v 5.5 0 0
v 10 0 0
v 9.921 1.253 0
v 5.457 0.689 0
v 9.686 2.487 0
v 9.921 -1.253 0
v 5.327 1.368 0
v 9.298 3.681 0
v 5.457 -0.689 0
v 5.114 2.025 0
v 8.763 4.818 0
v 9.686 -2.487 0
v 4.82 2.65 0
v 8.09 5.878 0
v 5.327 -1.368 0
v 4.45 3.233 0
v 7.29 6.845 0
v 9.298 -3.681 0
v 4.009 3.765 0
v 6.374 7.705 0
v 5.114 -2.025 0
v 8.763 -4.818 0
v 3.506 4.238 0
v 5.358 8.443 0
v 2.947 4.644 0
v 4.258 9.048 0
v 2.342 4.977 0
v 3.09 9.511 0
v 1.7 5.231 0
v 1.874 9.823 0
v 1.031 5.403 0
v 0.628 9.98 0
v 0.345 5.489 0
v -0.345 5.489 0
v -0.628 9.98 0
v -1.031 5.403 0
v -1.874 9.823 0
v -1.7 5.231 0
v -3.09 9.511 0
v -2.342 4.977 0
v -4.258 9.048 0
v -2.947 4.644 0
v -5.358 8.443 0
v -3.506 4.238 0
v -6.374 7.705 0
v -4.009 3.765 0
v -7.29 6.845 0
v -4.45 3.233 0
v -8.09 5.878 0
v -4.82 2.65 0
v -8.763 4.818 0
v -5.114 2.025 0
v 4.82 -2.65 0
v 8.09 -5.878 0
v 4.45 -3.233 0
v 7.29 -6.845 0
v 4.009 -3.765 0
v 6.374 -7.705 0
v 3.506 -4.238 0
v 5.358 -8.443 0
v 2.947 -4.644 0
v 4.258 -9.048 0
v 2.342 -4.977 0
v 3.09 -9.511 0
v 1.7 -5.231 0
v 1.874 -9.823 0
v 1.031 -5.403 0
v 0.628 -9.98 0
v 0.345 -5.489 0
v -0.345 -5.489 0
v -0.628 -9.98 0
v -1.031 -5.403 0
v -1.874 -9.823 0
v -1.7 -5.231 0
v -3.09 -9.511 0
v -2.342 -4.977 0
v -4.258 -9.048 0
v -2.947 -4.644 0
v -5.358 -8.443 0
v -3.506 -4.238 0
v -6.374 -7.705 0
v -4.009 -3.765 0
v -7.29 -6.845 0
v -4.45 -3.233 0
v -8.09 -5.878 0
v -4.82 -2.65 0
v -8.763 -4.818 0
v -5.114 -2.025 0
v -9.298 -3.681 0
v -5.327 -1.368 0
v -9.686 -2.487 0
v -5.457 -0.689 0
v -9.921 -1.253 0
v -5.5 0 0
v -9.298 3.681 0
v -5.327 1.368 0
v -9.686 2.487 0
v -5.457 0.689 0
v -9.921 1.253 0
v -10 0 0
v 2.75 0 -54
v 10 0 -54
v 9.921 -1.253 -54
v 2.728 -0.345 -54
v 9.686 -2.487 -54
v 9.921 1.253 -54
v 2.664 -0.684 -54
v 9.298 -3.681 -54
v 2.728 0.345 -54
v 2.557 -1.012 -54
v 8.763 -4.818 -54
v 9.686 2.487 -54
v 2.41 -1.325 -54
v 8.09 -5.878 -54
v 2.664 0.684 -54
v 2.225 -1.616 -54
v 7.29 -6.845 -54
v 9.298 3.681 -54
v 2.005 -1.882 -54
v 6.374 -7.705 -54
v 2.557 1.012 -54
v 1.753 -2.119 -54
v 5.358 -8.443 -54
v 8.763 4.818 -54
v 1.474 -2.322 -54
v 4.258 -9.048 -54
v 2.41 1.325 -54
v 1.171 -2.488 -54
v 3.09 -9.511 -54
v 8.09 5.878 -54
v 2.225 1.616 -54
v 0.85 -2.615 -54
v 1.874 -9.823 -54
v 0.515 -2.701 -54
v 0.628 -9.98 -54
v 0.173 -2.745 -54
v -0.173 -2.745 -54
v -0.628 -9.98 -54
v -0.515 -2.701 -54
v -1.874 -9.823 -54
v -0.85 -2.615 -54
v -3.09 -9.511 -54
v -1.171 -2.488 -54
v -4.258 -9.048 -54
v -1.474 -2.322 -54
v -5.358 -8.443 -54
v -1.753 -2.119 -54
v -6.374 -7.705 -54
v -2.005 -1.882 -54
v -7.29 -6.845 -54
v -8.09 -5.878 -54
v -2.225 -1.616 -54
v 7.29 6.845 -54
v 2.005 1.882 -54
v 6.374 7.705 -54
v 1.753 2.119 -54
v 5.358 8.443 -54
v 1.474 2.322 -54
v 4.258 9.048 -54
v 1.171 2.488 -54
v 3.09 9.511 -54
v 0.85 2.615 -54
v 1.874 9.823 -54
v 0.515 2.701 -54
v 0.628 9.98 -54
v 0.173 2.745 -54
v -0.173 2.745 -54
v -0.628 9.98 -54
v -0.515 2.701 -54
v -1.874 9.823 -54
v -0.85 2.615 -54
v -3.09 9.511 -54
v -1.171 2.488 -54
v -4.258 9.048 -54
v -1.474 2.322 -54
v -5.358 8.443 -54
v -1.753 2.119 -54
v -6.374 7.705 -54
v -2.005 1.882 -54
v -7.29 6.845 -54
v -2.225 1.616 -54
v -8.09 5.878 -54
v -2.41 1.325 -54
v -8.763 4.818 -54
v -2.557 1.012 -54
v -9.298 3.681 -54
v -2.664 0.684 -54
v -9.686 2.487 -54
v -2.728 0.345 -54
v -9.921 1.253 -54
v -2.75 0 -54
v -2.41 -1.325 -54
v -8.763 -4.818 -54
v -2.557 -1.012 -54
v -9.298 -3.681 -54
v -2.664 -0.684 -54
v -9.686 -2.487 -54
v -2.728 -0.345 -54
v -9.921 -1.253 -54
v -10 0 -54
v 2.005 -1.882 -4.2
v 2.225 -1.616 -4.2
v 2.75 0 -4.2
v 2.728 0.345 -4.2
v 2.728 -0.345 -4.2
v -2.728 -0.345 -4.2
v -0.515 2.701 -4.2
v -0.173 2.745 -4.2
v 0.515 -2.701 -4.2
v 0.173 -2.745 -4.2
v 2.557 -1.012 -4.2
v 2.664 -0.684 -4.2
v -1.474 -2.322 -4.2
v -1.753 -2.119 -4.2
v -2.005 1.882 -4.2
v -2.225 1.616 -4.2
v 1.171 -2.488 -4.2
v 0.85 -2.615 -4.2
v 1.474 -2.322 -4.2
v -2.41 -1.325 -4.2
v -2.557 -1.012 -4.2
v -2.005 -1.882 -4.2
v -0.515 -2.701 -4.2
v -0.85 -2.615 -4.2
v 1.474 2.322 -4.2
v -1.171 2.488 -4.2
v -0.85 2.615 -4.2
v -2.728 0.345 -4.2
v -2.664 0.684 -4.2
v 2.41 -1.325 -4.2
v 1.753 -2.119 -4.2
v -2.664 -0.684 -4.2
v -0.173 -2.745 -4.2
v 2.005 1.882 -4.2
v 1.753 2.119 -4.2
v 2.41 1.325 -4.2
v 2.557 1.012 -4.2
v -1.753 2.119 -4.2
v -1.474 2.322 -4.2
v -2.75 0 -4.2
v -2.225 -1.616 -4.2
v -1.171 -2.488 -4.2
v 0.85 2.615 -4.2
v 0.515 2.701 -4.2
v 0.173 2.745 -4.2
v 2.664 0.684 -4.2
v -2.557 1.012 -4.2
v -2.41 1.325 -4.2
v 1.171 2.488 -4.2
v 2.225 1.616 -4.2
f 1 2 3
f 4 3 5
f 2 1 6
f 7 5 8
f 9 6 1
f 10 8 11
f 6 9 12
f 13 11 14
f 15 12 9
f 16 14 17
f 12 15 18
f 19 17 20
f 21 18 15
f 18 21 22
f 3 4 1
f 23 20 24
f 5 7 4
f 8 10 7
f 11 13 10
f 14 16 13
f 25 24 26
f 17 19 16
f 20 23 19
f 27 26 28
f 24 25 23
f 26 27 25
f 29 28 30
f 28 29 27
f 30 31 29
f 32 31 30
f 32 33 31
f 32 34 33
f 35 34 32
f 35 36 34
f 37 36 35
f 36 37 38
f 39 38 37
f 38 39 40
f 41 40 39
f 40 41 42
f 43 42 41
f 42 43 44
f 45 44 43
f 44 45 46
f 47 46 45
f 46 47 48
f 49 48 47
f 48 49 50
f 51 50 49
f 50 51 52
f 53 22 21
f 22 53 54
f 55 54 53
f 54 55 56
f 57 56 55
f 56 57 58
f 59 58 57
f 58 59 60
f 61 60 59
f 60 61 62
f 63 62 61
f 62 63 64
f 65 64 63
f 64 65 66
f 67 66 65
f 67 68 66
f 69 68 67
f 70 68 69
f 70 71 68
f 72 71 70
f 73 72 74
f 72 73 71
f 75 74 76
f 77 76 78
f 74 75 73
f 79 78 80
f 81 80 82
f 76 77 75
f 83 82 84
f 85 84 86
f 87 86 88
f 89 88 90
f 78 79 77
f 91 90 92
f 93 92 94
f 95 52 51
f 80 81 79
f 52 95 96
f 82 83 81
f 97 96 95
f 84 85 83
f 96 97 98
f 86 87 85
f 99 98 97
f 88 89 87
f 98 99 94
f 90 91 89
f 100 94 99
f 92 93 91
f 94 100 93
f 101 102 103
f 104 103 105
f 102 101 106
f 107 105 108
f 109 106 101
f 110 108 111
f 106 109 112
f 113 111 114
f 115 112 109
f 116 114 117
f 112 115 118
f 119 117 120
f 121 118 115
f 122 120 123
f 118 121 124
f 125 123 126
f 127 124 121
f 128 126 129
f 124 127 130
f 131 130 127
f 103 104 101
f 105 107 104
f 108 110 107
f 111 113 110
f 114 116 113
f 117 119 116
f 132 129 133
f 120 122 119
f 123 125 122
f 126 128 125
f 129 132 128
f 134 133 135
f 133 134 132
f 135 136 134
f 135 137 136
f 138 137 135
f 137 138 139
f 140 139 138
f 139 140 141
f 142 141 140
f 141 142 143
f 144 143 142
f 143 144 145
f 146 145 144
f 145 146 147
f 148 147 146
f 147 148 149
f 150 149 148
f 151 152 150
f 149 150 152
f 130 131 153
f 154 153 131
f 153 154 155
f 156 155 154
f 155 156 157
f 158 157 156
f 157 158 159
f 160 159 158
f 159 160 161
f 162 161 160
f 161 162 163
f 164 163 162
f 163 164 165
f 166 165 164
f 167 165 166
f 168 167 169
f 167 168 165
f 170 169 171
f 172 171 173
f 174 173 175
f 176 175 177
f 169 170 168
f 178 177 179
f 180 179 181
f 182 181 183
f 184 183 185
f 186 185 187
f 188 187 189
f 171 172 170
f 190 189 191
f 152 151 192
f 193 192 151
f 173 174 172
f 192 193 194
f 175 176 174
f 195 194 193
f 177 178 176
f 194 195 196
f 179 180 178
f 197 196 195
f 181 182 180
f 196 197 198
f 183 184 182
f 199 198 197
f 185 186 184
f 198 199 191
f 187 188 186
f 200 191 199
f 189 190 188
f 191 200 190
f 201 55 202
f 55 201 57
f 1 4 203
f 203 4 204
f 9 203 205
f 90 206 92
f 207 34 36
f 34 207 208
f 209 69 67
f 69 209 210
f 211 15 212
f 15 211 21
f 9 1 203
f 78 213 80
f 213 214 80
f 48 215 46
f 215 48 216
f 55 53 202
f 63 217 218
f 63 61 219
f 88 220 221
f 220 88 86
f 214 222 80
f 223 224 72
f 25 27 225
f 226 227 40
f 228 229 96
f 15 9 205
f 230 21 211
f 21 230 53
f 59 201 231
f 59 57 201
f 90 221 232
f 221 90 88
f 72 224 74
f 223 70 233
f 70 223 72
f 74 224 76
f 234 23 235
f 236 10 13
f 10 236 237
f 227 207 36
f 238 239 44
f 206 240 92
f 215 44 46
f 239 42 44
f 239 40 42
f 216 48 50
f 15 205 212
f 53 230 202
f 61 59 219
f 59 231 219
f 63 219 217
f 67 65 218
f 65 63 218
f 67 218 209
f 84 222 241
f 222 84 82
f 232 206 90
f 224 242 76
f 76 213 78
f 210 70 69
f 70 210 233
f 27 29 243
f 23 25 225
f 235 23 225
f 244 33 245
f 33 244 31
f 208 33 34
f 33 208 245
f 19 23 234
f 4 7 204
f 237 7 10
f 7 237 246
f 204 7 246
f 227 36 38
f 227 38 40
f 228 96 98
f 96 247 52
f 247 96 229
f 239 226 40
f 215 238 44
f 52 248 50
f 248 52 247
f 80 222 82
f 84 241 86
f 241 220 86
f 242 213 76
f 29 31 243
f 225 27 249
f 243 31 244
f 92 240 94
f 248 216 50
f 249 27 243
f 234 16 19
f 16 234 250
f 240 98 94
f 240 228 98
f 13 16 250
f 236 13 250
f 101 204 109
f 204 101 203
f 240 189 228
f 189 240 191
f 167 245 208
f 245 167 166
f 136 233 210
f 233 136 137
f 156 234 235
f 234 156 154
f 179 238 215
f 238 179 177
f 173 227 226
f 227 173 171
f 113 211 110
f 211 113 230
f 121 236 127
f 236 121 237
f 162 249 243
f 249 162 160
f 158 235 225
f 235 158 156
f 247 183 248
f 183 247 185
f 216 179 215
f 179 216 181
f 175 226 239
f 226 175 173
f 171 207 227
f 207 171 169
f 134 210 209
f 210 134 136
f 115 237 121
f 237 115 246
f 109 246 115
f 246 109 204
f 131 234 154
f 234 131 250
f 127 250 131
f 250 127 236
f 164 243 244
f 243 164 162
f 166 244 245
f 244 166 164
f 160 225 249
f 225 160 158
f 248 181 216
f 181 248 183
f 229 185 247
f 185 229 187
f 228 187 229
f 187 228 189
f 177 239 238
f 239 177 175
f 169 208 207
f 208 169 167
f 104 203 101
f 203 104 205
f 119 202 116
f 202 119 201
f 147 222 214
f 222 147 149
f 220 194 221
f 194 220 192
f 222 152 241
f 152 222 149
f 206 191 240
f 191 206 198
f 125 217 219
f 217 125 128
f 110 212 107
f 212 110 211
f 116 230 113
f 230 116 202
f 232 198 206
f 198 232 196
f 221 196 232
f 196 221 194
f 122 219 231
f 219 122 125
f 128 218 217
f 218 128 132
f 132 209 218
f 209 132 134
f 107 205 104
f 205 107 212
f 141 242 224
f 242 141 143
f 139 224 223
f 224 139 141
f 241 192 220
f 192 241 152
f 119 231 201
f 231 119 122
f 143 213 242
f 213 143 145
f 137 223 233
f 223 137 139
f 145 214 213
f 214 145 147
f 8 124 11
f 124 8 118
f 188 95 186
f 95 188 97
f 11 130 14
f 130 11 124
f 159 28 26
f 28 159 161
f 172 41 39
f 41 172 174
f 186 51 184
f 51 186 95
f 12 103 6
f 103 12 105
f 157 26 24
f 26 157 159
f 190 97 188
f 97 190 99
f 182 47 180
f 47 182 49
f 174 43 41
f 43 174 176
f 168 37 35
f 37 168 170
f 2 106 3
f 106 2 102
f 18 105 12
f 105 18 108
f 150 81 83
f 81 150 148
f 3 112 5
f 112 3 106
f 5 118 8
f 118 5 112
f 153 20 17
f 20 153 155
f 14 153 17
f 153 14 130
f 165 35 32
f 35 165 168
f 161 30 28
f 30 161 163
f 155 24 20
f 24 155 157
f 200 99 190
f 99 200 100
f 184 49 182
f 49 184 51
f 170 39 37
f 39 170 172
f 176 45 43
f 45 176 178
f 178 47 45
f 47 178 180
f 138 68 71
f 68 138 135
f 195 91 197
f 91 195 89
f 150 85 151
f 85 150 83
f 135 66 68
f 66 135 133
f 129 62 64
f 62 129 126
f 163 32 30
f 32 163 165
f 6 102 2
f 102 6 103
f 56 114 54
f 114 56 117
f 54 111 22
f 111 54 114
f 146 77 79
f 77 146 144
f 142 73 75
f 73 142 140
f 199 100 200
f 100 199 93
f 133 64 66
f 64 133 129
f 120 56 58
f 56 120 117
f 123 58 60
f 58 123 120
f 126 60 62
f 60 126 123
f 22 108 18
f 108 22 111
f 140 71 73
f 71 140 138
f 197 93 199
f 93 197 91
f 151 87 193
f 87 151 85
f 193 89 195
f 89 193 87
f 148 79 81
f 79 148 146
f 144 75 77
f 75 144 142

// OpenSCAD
$fn = 50;


difference() {
	union() {
		translate(v = [0, 0, -54.0000000000]) {
			cylinder(h = 54, r = 10.0000000000);
		}
		cylinder(h = 0, r = 16.0000000000);
	}
	union() {
		translate(v = [0, 0, 0]) {
			rotate(a = [0, 0, 0]) {
				difference() {
					union() {
						#translate(v = [0, 0, -54.0000000000]) {
							cylinder(h = 54, r = 2.2500000000);
						}
						#translate(v = [0, 0, -4.2000000000]) {
							cylinder(h = 4.2000000000, r1 = 2.7500000000, r2 = 5.5000000000);
						}
						#translate(v = [0, 0, -54.0000000000]) {
							cylinder(h = 54, r = 2.7500000000);
						}
						#translate(v = [0, 0, -54.0000000000]) {
							cylinder(h = 54, r = 2.2500000000);
						}
					}
					union();
				}
			}
		}
	}
}
